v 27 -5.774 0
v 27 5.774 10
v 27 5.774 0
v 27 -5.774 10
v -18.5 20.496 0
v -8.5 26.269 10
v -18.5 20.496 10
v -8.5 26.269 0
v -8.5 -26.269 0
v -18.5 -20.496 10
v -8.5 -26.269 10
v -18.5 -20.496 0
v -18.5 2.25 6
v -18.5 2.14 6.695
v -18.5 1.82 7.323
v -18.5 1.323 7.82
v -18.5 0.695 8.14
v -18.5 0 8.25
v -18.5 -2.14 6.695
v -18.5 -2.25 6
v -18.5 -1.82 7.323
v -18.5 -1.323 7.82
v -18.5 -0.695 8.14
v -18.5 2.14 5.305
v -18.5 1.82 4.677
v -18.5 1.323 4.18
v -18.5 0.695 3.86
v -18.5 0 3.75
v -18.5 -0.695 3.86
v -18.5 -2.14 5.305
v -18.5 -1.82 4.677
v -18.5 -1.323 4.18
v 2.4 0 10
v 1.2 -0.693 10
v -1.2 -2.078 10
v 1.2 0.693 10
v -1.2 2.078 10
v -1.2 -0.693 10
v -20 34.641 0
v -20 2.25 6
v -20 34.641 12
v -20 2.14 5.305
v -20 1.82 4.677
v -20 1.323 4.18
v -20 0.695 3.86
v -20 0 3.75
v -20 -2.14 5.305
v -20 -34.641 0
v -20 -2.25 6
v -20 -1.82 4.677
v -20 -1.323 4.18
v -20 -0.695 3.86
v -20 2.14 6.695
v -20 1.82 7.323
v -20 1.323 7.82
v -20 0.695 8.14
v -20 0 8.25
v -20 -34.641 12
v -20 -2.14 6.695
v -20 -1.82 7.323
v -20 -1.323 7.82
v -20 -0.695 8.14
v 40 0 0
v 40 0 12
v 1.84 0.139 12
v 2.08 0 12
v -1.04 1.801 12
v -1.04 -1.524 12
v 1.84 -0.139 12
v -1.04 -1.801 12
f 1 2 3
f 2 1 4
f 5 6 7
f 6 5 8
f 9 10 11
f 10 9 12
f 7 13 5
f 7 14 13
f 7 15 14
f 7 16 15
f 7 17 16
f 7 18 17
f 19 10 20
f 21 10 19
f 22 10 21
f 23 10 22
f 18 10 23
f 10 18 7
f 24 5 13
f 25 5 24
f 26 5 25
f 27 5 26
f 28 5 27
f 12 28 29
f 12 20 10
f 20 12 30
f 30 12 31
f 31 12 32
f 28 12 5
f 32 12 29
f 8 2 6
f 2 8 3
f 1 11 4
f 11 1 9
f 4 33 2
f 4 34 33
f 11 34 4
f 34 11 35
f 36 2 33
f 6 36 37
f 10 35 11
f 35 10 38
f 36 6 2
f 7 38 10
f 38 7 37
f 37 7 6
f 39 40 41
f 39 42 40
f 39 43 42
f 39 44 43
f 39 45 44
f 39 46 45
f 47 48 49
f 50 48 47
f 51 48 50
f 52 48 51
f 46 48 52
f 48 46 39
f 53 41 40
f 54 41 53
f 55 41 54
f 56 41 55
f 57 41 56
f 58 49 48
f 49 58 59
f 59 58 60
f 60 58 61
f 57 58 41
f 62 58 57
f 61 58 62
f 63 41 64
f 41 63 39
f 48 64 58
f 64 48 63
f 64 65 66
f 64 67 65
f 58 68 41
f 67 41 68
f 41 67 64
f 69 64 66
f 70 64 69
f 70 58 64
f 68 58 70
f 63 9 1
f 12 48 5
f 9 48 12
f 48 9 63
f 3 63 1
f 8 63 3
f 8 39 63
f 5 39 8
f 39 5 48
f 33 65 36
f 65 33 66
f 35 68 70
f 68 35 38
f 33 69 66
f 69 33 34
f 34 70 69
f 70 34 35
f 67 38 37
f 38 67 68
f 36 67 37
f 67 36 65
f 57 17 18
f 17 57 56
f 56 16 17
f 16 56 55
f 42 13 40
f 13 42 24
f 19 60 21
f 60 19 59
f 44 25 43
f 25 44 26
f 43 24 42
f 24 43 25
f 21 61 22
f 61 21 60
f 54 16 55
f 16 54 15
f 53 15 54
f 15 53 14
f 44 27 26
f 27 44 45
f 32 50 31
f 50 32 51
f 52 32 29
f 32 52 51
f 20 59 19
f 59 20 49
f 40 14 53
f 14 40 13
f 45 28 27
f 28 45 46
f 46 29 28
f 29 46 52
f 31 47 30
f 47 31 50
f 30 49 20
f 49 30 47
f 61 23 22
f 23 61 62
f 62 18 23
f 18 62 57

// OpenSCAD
// user configurable parameters

sides         =  3; // 3 = triangle
                    // 4 = square
                    // 5 = pentagon
                    // Warning: $diameter is the diagonal when using a square!
diameter       = 80;
height         = 12;
cutoff         = 10;
wallthickness  =  3;
roofthickness  =  2;
holediam       =  4;
edgeradius     =  5;
powerjackdiam =   4.5;


_  = 0.5; // just a little overlap

difference () {
    // main body
    cylinder (height, diameter/2, diameter/2, $fn=sides);
    // cutout
    translate ([0,0,-_]) {
        difference () {
            // main cutout
            cylinder (height - roofthickness + _, diameter/2 - wallthickness, diameter/2 - wallthickness, $fn=sides);
            // leave something at the edges to attach rubber feet or something
            for (i = [0:sides-1]) {
                rotate (i * 360 / sides, [0,0,1]) {
                    translate ([diameter/2 - wallthickness - cutoff,-(sides*cutoff+_)/2,-_/2]) {
                        cube ([cutoff+_,sides*cutoff+_,height+_]);
                    }
                }
            }
        }
    }
    // for the power wires
    cylinder (height+_,holediam,holediam/2, $fn=sides);
    translate([0,0,height-roofthickness-4]) {
        rotate ([0,-90,0]) {
            cylinder (diameter,powerjackdiam/2,powerjackdiam/2,$fn=20);
        }
    }
}
// rounded edges
/*
 translate ([diameter/2-edgeradius,0,-_/2]) {
    cylinder (height+_,edgeradius,edgeradius, $fn=40);
}
// */

    
